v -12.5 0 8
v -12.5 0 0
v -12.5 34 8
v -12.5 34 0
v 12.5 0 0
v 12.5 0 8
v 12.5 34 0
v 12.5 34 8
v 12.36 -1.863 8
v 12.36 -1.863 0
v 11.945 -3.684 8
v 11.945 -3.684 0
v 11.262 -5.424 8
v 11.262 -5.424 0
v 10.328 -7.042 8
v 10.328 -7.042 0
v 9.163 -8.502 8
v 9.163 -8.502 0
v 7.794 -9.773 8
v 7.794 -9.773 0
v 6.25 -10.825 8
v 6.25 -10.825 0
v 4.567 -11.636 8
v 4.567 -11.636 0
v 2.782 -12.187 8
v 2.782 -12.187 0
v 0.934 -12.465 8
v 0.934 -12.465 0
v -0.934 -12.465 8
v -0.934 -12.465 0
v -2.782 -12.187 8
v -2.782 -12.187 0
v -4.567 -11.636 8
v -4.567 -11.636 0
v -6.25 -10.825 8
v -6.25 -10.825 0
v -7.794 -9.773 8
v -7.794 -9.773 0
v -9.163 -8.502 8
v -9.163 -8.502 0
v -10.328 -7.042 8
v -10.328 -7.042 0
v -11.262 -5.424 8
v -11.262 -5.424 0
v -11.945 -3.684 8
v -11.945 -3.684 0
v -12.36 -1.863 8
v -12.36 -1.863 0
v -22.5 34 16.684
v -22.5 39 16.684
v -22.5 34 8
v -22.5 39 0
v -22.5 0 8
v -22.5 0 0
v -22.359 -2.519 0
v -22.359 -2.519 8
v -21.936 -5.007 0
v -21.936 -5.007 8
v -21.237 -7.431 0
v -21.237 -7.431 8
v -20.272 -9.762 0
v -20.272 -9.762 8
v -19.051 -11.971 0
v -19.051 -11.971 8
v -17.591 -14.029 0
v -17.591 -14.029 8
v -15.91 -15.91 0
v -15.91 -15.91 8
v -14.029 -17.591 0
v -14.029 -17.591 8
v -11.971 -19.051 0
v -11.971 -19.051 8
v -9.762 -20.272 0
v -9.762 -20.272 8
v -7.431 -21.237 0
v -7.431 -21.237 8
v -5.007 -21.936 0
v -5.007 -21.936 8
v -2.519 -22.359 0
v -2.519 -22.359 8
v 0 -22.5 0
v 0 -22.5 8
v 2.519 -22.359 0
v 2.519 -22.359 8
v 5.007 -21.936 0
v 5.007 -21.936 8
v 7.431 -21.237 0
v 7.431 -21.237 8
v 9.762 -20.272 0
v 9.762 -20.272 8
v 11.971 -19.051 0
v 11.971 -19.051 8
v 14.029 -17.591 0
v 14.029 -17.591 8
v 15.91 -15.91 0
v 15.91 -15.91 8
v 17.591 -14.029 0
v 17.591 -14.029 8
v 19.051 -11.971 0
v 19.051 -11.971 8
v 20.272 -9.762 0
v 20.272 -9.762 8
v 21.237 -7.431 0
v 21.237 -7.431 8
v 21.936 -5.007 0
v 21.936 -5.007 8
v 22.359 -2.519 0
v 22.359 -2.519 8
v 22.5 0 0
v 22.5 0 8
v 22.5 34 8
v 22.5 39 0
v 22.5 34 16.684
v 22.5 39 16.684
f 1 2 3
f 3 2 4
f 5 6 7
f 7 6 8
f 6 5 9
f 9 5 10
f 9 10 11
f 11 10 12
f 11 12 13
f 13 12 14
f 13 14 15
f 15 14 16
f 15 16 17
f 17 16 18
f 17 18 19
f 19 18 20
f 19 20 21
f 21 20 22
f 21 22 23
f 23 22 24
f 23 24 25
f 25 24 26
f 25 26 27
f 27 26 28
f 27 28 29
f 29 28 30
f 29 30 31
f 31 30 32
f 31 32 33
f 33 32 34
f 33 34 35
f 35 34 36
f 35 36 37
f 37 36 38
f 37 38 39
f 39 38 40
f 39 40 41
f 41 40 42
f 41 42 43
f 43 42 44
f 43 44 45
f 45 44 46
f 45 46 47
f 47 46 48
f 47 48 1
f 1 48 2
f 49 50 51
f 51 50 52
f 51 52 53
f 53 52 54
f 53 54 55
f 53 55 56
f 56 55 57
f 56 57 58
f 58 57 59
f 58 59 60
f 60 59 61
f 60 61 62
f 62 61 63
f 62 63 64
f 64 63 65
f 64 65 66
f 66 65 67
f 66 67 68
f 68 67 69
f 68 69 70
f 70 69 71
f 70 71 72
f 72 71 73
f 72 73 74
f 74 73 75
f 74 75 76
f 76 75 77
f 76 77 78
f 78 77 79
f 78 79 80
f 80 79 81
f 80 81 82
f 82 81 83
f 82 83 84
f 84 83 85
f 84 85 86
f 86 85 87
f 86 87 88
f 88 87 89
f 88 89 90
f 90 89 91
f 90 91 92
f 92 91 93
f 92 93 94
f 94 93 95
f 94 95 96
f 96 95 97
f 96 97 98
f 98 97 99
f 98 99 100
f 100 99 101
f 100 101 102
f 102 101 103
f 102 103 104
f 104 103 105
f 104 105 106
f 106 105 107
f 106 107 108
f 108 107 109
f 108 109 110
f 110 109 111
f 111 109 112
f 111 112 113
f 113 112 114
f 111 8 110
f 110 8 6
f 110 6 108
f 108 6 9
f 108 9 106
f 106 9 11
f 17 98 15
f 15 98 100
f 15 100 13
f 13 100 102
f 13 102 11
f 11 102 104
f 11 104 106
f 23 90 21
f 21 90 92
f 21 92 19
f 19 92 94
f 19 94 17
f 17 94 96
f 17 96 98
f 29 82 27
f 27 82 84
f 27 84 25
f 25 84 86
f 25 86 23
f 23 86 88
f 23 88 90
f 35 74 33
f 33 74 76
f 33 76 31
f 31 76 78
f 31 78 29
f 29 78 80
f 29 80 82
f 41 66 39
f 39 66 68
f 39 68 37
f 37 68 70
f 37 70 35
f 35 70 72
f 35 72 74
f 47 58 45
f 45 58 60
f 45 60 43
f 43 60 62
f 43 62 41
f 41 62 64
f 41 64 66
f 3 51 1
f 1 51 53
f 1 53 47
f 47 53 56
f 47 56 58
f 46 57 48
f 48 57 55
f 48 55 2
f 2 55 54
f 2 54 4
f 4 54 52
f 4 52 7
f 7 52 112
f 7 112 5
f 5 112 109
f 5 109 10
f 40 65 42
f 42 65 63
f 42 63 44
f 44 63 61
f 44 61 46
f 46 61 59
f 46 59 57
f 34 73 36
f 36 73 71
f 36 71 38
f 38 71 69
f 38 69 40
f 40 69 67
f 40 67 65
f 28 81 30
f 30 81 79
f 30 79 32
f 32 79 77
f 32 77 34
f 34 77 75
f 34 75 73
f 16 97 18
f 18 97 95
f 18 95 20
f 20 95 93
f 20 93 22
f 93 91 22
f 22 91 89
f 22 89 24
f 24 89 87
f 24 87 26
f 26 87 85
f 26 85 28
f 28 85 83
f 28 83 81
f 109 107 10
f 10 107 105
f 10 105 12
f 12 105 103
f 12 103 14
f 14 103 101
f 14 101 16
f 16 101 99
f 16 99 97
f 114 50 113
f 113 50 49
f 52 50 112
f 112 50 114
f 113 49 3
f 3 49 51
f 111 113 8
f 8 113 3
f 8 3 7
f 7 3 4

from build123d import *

# Parameters (mm, degrees)
BOSS_EXTRUDE1_DEPTH = 8
BOSS_EXTRUDE2_DEPTH = 5
SKETCH3_W           = 25
SKETCH3_H           = 5
BOSS_EXTRUDE3_DEPTH = 8


with BuildPart() as part:
    # Sketch1 → Boss-Extrude1 (new body)
    with BuildSketch(Plane.XY):
        with BuildLine():
            Line((-12.5, 0), (-12.5, 34))
            Line((-12.5, 34), (-22.5, 34))
            Line((-22.5, 34), (-22.5, 0))
            ThreePointArc((-22.5, 0), (0, -22.5), (22.5, 0))
            Line((22.5, 0), (22.5, 34))
            Line((22.5, 34), (12.5, 34))
            Line((12.5, 34), (12.5, 0))
            ThreePointArc((12.5, 0), (0, -12.5), (-12.5, 0))
        make_face()
    extrude(amount=BOSS_EXTRUDE1_DEPTH)

    # Sketch2 → Boss-Extrude2 (add)
    with BuildSketch(Plane(origin=(0, 34, 0), x_dir=(1, 0, 0), z_dir=(0, 1, 0))):
        Polygon((-22.5, 0), (-22.5, -8.684042384), (-22.5, -16.684042384), (22.5, -16.684042384), (22.5, 0), (12.5, 0), (12.5, -8), (-12.5, -8), (-12.5, 0), align=None)
    extrude(amount=BOSS_EXTRUDE2_DEPTH)

    # Sketch3 → Boss-Extrude3 (add)
    with BuildSketch(Plane(origin=(0, 0, 8), x_dir=(-1, 0, 0), z_dir=(0, 0, -1))):
        with Locations((0, 36.5)):
            Rectangle(SKETCH3_W, SKETCH3_H)
    extrude(amount=BOSS_EXTRUDE3_DEPTH)


solid = part.part
